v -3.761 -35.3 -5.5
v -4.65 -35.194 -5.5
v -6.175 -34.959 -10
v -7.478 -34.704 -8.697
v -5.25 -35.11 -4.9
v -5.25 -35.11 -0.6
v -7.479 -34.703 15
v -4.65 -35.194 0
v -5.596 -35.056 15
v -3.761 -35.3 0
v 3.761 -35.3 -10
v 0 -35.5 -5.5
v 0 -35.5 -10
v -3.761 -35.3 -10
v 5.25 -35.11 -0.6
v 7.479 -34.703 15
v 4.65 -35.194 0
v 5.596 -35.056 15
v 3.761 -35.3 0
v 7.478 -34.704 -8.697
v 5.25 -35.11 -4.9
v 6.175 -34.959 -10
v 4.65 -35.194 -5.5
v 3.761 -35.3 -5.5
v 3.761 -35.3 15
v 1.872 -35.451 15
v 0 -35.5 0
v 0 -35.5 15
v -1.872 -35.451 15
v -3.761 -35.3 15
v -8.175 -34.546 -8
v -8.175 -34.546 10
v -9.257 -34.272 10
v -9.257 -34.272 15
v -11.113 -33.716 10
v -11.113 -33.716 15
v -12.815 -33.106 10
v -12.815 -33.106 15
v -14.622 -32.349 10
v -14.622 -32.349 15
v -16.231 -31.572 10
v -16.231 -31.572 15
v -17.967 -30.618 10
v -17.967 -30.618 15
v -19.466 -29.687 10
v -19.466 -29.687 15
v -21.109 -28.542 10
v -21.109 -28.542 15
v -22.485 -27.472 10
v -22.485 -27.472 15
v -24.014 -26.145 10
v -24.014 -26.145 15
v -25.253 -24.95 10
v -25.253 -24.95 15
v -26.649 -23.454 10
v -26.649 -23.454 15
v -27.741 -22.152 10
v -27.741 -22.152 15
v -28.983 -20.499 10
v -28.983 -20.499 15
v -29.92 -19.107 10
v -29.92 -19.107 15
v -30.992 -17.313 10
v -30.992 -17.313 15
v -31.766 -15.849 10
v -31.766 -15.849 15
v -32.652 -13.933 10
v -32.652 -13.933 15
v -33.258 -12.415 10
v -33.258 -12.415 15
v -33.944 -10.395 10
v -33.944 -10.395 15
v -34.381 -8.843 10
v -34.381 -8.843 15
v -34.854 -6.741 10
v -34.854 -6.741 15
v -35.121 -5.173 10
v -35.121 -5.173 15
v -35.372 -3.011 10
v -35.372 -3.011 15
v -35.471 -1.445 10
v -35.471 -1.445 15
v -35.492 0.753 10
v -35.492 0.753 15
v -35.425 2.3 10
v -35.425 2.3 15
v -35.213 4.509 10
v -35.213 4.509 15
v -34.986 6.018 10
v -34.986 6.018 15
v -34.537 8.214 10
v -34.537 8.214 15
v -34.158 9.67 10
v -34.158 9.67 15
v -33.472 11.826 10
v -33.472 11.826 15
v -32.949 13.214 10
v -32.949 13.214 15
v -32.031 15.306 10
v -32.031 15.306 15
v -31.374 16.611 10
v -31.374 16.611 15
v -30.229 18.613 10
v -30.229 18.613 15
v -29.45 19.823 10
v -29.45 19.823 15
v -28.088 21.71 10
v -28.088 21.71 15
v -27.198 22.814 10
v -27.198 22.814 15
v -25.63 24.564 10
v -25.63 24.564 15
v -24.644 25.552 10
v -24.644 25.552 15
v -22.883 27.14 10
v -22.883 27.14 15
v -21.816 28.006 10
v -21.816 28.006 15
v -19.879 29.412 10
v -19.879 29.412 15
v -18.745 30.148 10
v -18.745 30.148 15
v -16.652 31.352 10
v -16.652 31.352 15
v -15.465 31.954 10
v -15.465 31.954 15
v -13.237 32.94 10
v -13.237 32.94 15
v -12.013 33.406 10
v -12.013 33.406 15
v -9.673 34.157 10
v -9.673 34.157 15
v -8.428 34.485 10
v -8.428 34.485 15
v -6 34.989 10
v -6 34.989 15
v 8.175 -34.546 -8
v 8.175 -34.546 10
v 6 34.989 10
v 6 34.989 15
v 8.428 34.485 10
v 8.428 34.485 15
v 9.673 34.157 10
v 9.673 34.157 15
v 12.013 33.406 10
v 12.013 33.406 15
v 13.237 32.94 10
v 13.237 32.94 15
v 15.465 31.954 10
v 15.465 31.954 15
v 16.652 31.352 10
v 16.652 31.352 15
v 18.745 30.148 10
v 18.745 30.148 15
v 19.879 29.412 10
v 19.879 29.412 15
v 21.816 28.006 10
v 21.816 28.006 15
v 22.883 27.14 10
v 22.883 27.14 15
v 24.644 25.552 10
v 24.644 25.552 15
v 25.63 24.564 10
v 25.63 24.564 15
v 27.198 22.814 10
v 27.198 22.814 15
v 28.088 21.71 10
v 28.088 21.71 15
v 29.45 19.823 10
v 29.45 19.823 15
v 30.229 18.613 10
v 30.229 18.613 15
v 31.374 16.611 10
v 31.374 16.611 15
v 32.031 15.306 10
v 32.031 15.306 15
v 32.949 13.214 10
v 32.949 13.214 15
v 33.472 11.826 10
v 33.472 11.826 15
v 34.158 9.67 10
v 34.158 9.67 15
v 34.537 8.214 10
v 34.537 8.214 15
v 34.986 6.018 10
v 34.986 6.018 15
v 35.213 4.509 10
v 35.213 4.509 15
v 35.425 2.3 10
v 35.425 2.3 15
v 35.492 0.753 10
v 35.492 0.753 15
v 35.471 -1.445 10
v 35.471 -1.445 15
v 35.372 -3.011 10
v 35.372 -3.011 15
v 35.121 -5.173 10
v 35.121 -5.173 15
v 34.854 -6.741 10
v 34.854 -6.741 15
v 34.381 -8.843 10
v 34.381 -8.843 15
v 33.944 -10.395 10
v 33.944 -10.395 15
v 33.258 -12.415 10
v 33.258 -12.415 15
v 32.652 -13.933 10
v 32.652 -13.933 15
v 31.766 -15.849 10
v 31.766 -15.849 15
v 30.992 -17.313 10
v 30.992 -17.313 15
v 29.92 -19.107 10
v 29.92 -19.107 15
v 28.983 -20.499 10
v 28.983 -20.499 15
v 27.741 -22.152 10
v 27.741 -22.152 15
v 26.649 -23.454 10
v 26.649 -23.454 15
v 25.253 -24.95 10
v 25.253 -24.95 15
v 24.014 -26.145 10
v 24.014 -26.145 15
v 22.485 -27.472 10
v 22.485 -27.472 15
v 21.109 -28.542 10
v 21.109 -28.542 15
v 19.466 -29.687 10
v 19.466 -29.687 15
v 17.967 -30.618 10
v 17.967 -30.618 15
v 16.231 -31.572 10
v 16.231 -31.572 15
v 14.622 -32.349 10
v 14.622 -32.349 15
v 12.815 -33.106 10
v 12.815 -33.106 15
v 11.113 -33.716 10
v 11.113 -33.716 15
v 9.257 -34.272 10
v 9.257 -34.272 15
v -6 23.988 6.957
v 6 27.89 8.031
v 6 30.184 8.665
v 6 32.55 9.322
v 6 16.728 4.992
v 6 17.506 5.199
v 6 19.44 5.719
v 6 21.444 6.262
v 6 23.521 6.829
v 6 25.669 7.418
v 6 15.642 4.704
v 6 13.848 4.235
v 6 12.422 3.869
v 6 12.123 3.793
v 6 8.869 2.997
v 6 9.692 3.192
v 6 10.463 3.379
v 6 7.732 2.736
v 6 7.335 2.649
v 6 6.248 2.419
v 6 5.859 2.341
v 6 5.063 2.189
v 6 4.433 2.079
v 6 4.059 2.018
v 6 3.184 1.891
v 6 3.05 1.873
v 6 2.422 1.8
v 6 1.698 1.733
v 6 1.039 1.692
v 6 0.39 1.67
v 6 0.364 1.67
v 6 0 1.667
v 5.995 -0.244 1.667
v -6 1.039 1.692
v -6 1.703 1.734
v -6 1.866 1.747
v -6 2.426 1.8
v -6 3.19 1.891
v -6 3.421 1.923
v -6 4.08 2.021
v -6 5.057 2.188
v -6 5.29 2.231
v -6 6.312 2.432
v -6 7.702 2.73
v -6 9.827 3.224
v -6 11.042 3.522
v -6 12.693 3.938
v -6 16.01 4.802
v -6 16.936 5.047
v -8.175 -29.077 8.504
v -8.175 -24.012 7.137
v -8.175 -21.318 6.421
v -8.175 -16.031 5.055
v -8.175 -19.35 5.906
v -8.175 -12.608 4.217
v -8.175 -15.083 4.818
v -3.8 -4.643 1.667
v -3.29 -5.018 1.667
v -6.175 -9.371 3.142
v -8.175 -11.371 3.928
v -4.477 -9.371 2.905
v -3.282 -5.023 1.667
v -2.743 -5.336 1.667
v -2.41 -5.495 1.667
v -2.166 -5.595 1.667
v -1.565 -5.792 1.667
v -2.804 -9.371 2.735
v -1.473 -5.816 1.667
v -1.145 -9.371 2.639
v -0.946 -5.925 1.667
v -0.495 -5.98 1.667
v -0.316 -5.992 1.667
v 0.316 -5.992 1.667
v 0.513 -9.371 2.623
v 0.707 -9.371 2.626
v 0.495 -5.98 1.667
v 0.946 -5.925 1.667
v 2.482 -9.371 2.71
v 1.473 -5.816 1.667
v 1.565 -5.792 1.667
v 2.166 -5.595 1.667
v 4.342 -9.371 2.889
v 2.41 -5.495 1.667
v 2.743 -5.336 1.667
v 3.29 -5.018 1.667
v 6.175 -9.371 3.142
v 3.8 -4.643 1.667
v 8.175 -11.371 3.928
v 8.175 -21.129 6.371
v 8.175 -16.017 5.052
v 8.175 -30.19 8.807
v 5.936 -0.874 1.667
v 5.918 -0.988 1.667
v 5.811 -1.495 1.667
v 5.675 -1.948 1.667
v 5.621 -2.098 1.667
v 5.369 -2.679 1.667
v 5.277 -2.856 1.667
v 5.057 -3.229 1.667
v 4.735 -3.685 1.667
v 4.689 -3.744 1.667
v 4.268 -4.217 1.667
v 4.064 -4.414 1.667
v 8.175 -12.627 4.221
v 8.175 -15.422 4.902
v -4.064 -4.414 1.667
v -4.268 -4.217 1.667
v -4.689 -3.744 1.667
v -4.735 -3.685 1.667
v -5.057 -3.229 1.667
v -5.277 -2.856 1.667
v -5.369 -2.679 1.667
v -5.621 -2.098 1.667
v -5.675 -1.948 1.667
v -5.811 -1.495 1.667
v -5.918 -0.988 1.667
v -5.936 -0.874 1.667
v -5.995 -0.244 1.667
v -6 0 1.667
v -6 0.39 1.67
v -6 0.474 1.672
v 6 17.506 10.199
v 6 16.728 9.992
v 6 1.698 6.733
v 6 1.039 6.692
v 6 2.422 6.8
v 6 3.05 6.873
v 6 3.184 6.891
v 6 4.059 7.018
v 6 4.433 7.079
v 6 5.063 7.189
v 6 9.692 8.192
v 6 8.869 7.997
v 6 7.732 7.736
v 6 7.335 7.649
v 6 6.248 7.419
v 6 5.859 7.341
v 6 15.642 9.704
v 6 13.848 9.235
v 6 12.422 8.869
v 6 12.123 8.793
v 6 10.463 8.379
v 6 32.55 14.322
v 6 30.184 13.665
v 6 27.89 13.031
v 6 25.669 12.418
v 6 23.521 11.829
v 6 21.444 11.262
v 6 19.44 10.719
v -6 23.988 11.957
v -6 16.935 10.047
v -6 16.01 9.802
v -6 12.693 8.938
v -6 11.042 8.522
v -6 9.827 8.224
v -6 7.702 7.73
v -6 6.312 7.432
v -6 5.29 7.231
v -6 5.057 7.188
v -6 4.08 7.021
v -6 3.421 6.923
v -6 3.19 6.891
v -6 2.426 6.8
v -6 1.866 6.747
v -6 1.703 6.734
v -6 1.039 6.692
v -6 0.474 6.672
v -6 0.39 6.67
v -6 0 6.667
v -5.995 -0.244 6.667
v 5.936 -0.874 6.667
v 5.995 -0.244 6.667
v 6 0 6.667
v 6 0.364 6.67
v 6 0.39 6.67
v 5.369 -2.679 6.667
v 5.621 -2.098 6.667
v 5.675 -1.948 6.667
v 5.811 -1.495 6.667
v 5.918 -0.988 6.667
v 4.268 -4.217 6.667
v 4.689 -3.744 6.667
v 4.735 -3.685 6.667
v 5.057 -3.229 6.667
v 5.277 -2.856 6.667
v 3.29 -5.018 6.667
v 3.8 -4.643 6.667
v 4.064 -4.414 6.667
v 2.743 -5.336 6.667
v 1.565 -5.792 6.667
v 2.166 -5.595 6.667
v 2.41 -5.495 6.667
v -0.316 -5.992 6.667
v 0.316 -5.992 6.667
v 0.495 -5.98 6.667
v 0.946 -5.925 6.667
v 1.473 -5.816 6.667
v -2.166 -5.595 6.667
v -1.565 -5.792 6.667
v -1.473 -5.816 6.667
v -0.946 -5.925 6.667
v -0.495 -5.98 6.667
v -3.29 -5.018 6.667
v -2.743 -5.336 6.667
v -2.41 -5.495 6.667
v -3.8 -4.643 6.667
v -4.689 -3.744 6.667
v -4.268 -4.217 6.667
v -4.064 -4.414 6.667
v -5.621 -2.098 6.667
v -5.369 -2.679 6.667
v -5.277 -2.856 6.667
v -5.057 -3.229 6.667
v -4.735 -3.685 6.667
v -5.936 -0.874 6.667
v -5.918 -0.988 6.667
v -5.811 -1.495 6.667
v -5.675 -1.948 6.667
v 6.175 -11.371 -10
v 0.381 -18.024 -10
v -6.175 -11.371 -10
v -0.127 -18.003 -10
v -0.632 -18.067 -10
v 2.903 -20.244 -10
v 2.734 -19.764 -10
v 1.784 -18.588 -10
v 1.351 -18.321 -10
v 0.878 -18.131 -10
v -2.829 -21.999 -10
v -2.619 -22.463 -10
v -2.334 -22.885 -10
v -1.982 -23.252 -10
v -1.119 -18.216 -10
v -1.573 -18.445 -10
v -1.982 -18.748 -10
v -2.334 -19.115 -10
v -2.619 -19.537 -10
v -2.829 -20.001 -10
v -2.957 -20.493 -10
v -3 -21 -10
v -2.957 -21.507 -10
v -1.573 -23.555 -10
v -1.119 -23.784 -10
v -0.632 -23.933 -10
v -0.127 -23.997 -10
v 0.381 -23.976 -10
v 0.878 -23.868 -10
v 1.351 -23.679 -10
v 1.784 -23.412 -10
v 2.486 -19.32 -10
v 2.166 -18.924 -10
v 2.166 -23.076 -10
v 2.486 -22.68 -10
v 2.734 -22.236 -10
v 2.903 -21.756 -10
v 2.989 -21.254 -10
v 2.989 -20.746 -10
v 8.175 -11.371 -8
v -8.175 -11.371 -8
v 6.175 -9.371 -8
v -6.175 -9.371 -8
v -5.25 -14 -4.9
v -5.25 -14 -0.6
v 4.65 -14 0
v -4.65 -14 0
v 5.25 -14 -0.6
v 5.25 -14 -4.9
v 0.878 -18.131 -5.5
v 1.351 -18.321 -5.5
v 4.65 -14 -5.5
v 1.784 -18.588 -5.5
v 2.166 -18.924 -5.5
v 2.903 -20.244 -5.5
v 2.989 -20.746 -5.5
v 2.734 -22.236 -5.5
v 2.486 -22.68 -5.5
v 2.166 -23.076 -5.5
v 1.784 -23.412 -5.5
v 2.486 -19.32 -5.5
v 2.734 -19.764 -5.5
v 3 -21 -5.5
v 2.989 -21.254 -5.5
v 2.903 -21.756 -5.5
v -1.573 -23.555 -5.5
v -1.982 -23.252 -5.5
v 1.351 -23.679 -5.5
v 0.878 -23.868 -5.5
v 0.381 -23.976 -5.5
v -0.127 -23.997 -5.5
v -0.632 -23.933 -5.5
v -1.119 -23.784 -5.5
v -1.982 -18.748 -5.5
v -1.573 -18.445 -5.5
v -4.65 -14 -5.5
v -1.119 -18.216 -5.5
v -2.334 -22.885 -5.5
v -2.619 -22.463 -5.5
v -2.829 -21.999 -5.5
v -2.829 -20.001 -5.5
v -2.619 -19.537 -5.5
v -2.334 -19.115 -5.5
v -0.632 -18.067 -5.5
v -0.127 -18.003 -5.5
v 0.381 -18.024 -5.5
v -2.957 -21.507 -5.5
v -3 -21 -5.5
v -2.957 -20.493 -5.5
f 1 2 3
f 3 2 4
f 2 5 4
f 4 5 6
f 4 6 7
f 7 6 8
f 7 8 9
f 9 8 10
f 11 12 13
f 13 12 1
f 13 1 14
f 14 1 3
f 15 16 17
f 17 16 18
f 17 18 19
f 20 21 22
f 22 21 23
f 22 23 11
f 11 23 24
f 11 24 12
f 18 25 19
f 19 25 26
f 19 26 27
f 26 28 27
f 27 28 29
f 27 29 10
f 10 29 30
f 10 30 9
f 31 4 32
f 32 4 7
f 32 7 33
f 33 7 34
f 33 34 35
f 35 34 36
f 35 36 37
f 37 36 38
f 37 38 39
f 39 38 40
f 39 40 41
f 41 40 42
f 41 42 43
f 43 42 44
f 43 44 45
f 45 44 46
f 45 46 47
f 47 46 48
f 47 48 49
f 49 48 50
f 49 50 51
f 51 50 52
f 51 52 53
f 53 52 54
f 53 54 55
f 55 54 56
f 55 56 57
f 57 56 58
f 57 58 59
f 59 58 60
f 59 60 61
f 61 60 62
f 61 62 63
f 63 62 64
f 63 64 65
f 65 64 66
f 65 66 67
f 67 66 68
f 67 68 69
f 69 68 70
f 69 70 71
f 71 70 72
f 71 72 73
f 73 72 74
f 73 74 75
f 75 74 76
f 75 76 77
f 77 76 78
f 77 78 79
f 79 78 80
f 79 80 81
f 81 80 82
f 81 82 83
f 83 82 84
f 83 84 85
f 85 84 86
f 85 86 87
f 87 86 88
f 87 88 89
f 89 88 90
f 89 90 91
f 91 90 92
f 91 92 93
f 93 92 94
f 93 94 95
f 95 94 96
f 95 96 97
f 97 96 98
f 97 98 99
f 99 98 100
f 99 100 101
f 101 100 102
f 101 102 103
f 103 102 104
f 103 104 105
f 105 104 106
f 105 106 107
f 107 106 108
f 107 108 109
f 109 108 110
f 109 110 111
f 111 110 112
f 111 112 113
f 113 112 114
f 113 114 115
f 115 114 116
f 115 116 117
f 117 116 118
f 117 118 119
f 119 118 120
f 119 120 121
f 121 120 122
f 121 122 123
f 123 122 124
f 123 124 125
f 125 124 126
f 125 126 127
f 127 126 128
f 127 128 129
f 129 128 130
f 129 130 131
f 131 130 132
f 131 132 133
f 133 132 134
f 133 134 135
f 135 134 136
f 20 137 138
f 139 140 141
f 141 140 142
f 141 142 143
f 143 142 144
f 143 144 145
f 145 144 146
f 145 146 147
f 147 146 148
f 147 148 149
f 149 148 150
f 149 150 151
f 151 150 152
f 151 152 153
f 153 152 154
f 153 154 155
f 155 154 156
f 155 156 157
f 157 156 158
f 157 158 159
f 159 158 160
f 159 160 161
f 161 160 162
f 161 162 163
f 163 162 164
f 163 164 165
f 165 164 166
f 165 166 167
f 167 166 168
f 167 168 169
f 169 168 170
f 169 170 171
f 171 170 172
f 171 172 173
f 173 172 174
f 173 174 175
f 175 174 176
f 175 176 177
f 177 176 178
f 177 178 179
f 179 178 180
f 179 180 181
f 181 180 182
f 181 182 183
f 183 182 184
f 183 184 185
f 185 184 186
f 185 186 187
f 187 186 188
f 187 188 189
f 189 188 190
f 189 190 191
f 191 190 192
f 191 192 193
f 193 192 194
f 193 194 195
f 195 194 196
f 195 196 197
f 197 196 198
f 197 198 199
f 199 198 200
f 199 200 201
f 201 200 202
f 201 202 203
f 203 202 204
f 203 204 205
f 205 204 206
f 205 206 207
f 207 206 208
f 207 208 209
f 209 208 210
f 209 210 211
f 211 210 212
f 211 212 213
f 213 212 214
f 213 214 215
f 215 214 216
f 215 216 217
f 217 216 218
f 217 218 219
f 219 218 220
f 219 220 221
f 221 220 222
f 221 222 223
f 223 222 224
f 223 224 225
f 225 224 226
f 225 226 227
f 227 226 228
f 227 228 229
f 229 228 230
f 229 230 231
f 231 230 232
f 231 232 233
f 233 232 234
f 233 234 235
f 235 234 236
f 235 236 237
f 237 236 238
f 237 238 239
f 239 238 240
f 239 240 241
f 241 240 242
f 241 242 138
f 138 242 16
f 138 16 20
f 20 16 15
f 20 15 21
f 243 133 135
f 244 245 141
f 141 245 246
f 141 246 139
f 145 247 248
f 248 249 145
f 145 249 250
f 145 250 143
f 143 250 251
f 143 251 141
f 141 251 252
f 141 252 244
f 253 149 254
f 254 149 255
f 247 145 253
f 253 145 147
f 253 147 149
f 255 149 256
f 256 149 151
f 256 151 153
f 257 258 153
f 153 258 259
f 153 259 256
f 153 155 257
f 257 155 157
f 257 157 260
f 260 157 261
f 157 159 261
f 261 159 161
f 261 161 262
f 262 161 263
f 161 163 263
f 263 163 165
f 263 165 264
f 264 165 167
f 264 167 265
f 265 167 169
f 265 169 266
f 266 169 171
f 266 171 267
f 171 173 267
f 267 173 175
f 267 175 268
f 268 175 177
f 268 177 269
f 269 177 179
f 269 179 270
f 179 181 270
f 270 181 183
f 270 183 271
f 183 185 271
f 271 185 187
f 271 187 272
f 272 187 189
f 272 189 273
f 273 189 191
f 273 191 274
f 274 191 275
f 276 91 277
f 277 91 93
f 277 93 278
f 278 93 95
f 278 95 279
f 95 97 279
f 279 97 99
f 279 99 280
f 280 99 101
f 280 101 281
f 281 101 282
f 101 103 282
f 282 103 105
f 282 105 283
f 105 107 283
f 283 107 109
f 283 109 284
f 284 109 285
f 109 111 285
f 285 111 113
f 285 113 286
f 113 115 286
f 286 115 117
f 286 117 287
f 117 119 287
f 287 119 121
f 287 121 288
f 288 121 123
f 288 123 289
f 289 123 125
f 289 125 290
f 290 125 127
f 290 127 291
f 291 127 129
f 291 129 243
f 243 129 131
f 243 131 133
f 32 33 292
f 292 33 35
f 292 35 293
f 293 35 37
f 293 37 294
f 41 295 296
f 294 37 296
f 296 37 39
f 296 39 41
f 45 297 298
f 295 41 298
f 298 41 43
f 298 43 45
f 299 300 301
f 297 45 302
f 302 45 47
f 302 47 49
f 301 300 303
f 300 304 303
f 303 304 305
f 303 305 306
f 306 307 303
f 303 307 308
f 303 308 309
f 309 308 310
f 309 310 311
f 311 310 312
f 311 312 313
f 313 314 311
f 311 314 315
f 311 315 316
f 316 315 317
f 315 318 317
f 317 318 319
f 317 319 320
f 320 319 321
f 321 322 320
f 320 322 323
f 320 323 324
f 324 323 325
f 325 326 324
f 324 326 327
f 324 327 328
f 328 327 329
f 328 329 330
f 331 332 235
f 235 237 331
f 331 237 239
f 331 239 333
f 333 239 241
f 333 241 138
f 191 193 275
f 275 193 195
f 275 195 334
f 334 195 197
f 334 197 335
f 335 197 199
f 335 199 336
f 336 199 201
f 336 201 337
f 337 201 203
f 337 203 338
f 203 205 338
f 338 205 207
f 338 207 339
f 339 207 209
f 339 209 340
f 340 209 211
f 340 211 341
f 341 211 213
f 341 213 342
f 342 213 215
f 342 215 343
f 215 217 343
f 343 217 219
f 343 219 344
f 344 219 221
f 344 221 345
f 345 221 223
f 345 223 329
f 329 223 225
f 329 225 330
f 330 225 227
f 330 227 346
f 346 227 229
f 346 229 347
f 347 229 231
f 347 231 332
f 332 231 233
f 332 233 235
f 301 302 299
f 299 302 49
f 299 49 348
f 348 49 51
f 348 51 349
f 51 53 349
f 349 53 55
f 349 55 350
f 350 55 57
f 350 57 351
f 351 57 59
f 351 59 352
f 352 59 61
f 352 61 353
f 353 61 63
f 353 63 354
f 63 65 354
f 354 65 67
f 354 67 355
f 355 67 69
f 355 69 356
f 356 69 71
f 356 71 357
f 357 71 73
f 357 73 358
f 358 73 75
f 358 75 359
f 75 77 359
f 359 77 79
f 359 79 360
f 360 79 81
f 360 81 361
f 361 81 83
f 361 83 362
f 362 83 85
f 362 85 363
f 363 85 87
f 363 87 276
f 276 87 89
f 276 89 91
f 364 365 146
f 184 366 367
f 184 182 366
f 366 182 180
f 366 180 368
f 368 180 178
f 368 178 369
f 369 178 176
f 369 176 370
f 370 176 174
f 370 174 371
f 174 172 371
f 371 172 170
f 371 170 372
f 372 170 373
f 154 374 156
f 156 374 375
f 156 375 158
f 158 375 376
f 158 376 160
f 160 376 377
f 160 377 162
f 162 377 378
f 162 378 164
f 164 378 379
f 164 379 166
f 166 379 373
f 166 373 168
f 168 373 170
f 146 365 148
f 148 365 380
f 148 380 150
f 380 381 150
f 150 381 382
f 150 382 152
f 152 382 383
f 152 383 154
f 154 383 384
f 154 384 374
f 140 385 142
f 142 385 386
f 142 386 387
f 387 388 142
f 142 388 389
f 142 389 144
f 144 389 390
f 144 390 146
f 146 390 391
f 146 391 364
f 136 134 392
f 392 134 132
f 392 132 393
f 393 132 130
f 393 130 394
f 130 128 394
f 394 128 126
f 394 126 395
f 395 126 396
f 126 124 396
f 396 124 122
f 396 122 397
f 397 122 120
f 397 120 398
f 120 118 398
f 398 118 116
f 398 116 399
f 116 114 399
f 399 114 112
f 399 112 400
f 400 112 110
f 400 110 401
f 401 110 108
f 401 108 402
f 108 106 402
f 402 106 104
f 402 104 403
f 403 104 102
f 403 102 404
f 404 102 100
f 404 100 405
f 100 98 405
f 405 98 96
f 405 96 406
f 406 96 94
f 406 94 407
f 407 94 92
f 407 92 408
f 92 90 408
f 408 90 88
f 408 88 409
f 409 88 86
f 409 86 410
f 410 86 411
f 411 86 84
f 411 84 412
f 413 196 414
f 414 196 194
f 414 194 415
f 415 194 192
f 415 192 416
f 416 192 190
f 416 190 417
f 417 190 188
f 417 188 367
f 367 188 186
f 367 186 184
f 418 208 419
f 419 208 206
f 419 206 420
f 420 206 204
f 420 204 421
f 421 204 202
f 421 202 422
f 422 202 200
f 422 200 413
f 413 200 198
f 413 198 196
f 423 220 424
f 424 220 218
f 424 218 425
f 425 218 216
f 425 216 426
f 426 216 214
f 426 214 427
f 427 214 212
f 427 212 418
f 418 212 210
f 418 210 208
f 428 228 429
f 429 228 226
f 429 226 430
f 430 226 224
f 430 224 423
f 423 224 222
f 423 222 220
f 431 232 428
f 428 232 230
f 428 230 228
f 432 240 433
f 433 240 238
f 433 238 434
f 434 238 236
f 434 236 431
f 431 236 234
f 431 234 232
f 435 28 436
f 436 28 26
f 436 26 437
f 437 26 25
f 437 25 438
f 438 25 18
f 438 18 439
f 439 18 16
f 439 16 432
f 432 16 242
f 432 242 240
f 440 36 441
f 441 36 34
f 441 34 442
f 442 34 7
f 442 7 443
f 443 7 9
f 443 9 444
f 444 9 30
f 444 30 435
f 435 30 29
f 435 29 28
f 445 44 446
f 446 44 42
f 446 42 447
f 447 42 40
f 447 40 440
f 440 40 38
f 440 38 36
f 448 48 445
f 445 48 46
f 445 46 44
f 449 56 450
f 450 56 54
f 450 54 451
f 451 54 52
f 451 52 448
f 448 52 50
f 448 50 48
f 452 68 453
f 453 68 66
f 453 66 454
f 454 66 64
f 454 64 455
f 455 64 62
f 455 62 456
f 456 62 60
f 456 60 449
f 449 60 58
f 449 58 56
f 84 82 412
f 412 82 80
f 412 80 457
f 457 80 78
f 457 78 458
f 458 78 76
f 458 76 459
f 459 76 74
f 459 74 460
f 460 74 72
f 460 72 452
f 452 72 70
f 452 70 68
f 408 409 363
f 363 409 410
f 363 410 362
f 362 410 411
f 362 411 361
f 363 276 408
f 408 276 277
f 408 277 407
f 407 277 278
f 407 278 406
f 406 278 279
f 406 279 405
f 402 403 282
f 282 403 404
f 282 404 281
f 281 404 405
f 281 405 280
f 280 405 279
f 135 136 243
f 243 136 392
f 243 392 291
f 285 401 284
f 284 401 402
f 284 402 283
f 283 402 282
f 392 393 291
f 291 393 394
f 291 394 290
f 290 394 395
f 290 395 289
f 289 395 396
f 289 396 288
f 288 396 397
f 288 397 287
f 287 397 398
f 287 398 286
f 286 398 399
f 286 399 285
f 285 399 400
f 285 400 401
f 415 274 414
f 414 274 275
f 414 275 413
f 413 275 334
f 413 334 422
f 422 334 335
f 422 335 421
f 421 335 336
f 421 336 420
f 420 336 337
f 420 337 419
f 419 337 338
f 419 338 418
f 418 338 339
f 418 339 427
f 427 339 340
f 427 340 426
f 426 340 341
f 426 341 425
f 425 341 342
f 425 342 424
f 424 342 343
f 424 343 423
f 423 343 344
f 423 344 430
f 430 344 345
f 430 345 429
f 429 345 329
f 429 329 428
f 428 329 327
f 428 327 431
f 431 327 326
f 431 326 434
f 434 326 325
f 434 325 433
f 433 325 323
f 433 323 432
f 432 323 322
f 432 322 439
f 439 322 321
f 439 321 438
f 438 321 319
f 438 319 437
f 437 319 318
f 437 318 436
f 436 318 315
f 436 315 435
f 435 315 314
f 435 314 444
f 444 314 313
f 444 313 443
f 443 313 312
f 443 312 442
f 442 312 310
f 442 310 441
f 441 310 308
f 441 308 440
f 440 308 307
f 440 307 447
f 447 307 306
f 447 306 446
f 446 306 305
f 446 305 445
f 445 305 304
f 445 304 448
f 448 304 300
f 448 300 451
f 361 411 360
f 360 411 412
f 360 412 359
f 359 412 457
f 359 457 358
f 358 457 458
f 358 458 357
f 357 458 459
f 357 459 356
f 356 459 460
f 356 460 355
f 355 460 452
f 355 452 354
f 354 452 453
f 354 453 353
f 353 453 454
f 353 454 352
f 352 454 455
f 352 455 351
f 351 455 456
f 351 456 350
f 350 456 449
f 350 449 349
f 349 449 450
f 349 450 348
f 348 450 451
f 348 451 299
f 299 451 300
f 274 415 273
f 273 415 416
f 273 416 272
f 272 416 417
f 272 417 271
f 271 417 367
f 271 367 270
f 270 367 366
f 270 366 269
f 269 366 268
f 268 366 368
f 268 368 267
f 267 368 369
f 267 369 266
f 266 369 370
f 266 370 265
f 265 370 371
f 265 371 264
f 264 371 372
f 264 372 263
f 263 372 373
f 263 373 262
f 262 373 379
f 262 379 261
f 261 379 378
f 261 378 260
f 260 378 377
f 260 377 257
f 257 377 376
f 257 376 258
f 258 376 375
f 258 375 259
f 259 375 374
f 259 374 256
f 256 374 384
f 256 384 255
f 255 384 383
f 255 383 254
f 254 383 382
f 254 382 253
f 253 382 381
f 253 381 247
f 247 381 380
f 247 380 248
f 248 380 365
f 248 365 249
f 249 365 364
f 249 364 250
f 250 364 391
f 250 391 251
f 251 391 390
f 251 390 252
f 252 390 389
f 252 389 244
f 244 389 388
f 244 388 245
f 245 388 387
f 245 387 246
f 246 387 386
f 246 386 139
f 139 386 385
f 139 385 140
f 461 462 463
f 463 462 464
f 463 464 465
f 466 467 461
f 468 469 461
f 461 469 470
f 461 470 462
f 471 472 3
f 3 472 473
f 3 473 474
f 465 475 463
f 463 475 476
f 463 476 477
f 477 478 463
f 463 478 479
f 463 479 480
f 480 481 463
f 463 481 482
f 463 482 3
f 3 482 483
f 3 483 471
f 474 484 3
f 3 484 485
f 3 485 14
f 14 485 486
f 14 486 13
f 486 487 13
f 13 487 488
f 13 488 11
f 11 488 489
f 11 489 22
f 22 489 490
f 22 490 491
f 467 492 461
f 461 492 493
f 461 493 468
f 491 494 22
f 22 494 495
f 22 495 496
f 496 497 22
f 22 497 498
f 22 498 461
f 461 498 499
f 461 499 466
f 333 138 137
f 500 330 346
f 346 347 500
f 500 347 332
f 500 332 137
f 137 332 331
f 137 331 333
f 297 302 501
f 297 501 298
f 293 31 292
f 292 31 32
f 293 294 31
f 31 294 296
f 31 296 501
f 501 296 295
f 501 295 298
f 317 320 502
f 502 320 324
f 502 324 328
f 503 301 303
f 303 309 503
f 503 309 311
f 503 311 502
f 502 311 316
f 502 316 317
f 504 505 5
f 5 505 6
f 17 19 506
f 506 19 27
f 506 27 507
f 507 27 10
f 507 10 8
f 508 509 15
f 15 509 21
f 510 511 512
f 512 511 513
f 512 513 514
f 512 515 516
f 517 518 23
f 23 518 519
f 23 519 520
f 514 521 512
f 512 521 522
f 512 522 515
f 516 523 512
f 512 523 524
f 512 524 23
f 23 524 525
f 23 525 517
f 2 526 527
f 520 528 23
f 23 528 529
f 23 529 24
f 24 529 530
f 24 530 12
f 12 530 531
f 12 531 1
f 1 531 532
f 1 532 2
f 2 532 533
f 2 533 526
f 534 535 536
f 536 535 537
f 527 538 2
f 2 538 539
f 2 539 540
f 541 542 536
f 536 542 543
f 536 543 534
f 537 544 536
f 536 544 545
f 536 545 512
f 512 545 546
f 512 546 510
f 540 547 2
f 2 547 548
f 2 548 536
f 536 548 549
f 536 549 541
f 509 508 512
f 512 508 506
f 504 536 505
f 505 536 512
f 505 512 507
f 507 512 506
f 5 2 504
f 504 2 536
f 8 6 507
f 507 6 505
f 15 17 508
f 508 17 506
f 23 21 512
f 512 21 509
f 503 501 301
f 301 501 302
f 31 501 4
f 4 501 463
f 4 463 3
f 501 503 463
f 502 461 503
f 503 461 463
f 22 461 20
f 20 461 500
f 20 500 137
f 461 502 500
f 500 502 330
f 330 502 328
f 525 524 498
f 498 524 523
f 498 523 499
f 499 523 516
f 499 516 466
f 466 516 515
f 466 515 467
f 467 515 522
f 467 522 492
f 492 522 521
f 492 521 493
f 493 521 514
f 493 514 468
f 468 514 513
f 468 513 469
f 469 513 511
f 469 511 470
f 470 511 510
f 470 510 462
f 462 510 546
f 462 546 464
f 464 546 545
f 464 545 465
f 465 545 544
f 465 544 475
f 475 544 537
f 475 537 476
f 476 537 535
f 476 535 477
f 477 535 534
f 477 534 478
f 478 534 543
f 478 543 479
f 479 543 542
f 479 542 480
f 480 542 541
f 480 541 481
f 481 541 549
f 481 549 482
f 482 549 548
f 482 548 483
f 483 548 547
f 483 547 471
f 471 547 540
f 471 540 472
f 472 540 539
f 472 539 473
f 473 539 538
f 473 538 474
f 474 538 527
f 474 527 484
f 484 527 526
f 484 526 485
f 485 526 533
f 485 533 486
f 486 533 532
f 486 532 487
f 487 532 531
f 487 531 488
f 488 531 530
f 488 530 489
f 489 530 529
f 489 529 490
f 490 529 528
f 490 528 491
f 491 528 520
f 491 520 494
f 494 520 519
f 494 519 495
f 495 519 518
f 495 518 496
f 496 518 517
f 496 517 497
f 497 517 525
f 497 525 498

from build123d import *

# Parameters (mm, degrees)
SKETCH1_R           = 35.5
BOSS_EXTRUDE1_DEPTH = 15
CUT_EXTRUDE2_REACH  = 54.398
BOSS_EXTRUDE2_REACH = 64.398
BOSS_EXTRUDE2_START = -10
CUT_EXTRUDE3_START  = -36
SKETCH5_W           = 10.5
SKETCH5_H           = 5.5
CUT_EXTRUDE3_DEPTH  = 22
CHAMFER1_SIZE       = 0.6
CHAMFER2_SIZE       = 2
CUT_EXTRUDE4_REACH  = 58.085
SKETCH6_R           = 3


with BuildPart() as part:
    # Sketch1 → Boss-Extrude1 (new body)
    with BuildSketch(Plane.XY):
        Circle(SKETCH1_R)
    extrude(amount=BOSS_EXTRUDE1_DEPTH)

    # Sketch2 → Cut-Revolve3 (revolve, cut)
    with BuildSketch(Plane(origin=(0, 0, 0), x_dir=(1, 0, 0), z_dir=(0, 1, 0)), mode=Mode.PRIVATE) as cut_revolve3_sk:
        Polygon((-35.5, 0), (-0.1, 0), (-35.5, -10), align=None)
        Polygon((-0.1, -15), (-0.1, -5), (-35.5, -15), align=None)
    revolve(cut_revolve3_sk.sketch.rotate(Axis((0, 0, 0), (0, 0, 1)), 180), axis=Axis((0, 0, 0), (0, 0, 1)), mode=Mode.SUBTRACT)

    # Sketch3 → Cut-Extrude2 (cut, up to next)
    with BuildSketch(Plane.XY, mode=Mode.PRIVATE) as cut_extrude2_sk1:
        with BuildLine():
            Line((6, 35.5), (6, 0))
            ThreePointArc((6, 0), (0, -6), (-6, 0))
            Line((-6, 0), (-6, 35.5))
            ThreePointArc((-6, 35.5), (0, 41.5), (6, 35.5))
        make_face()
    cut_extrude2_tool1 = extrude(cut_extrude2_sk1.sketch, amount=CUT_EXTRUDE2_REACH, mode=Mode.PRIVATE) & part.part
    add(cut_extrude2_tool1.solids().sort_by_distance((0, 17.75, 0))[0], mode=Mode.SUBTRACT)

    # Boss-Extrude2: up to this cone (the profile starts outside it)
    boss_extrude2_end = Plane(origin=(0, 0, -10), z_dir=(0, 0, 1)).offset(9.971752412) * Cone(3.54e-06, 194.43892, 54.926247588, align=(Align.CENTER, Align.CENTER, Align.MIN), mode=Mode.PRIVATE)
    # Sketch4 → Boss-Extrude2 (add, up to the surface)
    with BuildSketch(Plane.XY.offset(BOSS_EXTRUDE2_START), mode=Mode.PRIVATE) as boss_extrude2_sk1:
        with BuildLine():
            Line((-8.175, -9.370902434), (8.175, -9.370902434))
            Line((8.175, -9.370902434), (8.175, -34.545902434))
            ThreePointArc((8.175, -34.545902434), (0, -35.5), (-8.175, -34.545902434))
            Line((-8.175, -34.545902434), (-8.175, -9.370902434))
        make_face()
    boss_extrude2_tool1 = extrude(boss_extrude2_sk1.sketch, amount=BOSS_EXTRUDE2_REACH, mode=Mode.PRIVATE) - boss_extrude2_end
    add(boss_extrude2_tool1.solids().sort_by_distance((0, -22.278861, -10))[0])

    # Sketch5 → Cut-Extrude3 (cut)
    with BuildSketch(Plane(origin=(0, 0, 0), x_dir=(1, 0, 0), z_dir=(0, 1, 0)).offset(CUT_EXTRUDE3_START)):
        with Locations((0, 2.75)):
            Rectangle(SKETCH5_W, SKETCH5_H)
    extrude(amount=CUT_EXTRUDE3_DEPTH, mode=Mode.SUBTRACT)

    # Chamfer1
    chamfer1_edges = [part.edges().sort_by_distance(p)[0] for p in [
        (-5.25, -24.554824835, -5.5),
        (-5.25, -24.554824835, 0),
        (5.25, -24.554824835, 0),
        (5.25, -24.554824835, -5.5),
    ]]
    chamfer(chamfer1_edges, length=CHAMFER1_SIZE)

    # Chamfer2
    chamfer2_edges = [part.edges().sort_by_distance(p)[0] for p in [
        (8.175, -9.370902434, -3.257681969),
        (-8.175, -9.370902434, -3.257681969),
        (8.175, -21.958402434, -10),
        (0, -9.370902434, -10),
        (-8.175, -21.958402434, -10),
    ]]
    chamfer(chamfer2_edges, length=CHAMFER2_SIZE)

    # Sketch6 → Cut-Extrude4 (cut, up to next)
    with BuildSketch(Plane(origin=(0, 0, -10), x_dir=(-1, 0, 0), z_dir=(0, 0, -1)), mode=Mode.PRIVATE) as cut_extrude4_sk1:
        with Locations((0, -21)):
            Circle(SKETCH6_R)
    cut_extrude4_tool1 = extrude(cut_extrude4_sk1.sketch, amount=-CUT_EXTRUDE4_REACH, mode=Mode.PRIVATE) & part.part
    add(cut_extrude4_tool1.solids().sort_by_distance((0, -21, -10))[0], mode=Mode.SUBTRACT)


solid = part.part
